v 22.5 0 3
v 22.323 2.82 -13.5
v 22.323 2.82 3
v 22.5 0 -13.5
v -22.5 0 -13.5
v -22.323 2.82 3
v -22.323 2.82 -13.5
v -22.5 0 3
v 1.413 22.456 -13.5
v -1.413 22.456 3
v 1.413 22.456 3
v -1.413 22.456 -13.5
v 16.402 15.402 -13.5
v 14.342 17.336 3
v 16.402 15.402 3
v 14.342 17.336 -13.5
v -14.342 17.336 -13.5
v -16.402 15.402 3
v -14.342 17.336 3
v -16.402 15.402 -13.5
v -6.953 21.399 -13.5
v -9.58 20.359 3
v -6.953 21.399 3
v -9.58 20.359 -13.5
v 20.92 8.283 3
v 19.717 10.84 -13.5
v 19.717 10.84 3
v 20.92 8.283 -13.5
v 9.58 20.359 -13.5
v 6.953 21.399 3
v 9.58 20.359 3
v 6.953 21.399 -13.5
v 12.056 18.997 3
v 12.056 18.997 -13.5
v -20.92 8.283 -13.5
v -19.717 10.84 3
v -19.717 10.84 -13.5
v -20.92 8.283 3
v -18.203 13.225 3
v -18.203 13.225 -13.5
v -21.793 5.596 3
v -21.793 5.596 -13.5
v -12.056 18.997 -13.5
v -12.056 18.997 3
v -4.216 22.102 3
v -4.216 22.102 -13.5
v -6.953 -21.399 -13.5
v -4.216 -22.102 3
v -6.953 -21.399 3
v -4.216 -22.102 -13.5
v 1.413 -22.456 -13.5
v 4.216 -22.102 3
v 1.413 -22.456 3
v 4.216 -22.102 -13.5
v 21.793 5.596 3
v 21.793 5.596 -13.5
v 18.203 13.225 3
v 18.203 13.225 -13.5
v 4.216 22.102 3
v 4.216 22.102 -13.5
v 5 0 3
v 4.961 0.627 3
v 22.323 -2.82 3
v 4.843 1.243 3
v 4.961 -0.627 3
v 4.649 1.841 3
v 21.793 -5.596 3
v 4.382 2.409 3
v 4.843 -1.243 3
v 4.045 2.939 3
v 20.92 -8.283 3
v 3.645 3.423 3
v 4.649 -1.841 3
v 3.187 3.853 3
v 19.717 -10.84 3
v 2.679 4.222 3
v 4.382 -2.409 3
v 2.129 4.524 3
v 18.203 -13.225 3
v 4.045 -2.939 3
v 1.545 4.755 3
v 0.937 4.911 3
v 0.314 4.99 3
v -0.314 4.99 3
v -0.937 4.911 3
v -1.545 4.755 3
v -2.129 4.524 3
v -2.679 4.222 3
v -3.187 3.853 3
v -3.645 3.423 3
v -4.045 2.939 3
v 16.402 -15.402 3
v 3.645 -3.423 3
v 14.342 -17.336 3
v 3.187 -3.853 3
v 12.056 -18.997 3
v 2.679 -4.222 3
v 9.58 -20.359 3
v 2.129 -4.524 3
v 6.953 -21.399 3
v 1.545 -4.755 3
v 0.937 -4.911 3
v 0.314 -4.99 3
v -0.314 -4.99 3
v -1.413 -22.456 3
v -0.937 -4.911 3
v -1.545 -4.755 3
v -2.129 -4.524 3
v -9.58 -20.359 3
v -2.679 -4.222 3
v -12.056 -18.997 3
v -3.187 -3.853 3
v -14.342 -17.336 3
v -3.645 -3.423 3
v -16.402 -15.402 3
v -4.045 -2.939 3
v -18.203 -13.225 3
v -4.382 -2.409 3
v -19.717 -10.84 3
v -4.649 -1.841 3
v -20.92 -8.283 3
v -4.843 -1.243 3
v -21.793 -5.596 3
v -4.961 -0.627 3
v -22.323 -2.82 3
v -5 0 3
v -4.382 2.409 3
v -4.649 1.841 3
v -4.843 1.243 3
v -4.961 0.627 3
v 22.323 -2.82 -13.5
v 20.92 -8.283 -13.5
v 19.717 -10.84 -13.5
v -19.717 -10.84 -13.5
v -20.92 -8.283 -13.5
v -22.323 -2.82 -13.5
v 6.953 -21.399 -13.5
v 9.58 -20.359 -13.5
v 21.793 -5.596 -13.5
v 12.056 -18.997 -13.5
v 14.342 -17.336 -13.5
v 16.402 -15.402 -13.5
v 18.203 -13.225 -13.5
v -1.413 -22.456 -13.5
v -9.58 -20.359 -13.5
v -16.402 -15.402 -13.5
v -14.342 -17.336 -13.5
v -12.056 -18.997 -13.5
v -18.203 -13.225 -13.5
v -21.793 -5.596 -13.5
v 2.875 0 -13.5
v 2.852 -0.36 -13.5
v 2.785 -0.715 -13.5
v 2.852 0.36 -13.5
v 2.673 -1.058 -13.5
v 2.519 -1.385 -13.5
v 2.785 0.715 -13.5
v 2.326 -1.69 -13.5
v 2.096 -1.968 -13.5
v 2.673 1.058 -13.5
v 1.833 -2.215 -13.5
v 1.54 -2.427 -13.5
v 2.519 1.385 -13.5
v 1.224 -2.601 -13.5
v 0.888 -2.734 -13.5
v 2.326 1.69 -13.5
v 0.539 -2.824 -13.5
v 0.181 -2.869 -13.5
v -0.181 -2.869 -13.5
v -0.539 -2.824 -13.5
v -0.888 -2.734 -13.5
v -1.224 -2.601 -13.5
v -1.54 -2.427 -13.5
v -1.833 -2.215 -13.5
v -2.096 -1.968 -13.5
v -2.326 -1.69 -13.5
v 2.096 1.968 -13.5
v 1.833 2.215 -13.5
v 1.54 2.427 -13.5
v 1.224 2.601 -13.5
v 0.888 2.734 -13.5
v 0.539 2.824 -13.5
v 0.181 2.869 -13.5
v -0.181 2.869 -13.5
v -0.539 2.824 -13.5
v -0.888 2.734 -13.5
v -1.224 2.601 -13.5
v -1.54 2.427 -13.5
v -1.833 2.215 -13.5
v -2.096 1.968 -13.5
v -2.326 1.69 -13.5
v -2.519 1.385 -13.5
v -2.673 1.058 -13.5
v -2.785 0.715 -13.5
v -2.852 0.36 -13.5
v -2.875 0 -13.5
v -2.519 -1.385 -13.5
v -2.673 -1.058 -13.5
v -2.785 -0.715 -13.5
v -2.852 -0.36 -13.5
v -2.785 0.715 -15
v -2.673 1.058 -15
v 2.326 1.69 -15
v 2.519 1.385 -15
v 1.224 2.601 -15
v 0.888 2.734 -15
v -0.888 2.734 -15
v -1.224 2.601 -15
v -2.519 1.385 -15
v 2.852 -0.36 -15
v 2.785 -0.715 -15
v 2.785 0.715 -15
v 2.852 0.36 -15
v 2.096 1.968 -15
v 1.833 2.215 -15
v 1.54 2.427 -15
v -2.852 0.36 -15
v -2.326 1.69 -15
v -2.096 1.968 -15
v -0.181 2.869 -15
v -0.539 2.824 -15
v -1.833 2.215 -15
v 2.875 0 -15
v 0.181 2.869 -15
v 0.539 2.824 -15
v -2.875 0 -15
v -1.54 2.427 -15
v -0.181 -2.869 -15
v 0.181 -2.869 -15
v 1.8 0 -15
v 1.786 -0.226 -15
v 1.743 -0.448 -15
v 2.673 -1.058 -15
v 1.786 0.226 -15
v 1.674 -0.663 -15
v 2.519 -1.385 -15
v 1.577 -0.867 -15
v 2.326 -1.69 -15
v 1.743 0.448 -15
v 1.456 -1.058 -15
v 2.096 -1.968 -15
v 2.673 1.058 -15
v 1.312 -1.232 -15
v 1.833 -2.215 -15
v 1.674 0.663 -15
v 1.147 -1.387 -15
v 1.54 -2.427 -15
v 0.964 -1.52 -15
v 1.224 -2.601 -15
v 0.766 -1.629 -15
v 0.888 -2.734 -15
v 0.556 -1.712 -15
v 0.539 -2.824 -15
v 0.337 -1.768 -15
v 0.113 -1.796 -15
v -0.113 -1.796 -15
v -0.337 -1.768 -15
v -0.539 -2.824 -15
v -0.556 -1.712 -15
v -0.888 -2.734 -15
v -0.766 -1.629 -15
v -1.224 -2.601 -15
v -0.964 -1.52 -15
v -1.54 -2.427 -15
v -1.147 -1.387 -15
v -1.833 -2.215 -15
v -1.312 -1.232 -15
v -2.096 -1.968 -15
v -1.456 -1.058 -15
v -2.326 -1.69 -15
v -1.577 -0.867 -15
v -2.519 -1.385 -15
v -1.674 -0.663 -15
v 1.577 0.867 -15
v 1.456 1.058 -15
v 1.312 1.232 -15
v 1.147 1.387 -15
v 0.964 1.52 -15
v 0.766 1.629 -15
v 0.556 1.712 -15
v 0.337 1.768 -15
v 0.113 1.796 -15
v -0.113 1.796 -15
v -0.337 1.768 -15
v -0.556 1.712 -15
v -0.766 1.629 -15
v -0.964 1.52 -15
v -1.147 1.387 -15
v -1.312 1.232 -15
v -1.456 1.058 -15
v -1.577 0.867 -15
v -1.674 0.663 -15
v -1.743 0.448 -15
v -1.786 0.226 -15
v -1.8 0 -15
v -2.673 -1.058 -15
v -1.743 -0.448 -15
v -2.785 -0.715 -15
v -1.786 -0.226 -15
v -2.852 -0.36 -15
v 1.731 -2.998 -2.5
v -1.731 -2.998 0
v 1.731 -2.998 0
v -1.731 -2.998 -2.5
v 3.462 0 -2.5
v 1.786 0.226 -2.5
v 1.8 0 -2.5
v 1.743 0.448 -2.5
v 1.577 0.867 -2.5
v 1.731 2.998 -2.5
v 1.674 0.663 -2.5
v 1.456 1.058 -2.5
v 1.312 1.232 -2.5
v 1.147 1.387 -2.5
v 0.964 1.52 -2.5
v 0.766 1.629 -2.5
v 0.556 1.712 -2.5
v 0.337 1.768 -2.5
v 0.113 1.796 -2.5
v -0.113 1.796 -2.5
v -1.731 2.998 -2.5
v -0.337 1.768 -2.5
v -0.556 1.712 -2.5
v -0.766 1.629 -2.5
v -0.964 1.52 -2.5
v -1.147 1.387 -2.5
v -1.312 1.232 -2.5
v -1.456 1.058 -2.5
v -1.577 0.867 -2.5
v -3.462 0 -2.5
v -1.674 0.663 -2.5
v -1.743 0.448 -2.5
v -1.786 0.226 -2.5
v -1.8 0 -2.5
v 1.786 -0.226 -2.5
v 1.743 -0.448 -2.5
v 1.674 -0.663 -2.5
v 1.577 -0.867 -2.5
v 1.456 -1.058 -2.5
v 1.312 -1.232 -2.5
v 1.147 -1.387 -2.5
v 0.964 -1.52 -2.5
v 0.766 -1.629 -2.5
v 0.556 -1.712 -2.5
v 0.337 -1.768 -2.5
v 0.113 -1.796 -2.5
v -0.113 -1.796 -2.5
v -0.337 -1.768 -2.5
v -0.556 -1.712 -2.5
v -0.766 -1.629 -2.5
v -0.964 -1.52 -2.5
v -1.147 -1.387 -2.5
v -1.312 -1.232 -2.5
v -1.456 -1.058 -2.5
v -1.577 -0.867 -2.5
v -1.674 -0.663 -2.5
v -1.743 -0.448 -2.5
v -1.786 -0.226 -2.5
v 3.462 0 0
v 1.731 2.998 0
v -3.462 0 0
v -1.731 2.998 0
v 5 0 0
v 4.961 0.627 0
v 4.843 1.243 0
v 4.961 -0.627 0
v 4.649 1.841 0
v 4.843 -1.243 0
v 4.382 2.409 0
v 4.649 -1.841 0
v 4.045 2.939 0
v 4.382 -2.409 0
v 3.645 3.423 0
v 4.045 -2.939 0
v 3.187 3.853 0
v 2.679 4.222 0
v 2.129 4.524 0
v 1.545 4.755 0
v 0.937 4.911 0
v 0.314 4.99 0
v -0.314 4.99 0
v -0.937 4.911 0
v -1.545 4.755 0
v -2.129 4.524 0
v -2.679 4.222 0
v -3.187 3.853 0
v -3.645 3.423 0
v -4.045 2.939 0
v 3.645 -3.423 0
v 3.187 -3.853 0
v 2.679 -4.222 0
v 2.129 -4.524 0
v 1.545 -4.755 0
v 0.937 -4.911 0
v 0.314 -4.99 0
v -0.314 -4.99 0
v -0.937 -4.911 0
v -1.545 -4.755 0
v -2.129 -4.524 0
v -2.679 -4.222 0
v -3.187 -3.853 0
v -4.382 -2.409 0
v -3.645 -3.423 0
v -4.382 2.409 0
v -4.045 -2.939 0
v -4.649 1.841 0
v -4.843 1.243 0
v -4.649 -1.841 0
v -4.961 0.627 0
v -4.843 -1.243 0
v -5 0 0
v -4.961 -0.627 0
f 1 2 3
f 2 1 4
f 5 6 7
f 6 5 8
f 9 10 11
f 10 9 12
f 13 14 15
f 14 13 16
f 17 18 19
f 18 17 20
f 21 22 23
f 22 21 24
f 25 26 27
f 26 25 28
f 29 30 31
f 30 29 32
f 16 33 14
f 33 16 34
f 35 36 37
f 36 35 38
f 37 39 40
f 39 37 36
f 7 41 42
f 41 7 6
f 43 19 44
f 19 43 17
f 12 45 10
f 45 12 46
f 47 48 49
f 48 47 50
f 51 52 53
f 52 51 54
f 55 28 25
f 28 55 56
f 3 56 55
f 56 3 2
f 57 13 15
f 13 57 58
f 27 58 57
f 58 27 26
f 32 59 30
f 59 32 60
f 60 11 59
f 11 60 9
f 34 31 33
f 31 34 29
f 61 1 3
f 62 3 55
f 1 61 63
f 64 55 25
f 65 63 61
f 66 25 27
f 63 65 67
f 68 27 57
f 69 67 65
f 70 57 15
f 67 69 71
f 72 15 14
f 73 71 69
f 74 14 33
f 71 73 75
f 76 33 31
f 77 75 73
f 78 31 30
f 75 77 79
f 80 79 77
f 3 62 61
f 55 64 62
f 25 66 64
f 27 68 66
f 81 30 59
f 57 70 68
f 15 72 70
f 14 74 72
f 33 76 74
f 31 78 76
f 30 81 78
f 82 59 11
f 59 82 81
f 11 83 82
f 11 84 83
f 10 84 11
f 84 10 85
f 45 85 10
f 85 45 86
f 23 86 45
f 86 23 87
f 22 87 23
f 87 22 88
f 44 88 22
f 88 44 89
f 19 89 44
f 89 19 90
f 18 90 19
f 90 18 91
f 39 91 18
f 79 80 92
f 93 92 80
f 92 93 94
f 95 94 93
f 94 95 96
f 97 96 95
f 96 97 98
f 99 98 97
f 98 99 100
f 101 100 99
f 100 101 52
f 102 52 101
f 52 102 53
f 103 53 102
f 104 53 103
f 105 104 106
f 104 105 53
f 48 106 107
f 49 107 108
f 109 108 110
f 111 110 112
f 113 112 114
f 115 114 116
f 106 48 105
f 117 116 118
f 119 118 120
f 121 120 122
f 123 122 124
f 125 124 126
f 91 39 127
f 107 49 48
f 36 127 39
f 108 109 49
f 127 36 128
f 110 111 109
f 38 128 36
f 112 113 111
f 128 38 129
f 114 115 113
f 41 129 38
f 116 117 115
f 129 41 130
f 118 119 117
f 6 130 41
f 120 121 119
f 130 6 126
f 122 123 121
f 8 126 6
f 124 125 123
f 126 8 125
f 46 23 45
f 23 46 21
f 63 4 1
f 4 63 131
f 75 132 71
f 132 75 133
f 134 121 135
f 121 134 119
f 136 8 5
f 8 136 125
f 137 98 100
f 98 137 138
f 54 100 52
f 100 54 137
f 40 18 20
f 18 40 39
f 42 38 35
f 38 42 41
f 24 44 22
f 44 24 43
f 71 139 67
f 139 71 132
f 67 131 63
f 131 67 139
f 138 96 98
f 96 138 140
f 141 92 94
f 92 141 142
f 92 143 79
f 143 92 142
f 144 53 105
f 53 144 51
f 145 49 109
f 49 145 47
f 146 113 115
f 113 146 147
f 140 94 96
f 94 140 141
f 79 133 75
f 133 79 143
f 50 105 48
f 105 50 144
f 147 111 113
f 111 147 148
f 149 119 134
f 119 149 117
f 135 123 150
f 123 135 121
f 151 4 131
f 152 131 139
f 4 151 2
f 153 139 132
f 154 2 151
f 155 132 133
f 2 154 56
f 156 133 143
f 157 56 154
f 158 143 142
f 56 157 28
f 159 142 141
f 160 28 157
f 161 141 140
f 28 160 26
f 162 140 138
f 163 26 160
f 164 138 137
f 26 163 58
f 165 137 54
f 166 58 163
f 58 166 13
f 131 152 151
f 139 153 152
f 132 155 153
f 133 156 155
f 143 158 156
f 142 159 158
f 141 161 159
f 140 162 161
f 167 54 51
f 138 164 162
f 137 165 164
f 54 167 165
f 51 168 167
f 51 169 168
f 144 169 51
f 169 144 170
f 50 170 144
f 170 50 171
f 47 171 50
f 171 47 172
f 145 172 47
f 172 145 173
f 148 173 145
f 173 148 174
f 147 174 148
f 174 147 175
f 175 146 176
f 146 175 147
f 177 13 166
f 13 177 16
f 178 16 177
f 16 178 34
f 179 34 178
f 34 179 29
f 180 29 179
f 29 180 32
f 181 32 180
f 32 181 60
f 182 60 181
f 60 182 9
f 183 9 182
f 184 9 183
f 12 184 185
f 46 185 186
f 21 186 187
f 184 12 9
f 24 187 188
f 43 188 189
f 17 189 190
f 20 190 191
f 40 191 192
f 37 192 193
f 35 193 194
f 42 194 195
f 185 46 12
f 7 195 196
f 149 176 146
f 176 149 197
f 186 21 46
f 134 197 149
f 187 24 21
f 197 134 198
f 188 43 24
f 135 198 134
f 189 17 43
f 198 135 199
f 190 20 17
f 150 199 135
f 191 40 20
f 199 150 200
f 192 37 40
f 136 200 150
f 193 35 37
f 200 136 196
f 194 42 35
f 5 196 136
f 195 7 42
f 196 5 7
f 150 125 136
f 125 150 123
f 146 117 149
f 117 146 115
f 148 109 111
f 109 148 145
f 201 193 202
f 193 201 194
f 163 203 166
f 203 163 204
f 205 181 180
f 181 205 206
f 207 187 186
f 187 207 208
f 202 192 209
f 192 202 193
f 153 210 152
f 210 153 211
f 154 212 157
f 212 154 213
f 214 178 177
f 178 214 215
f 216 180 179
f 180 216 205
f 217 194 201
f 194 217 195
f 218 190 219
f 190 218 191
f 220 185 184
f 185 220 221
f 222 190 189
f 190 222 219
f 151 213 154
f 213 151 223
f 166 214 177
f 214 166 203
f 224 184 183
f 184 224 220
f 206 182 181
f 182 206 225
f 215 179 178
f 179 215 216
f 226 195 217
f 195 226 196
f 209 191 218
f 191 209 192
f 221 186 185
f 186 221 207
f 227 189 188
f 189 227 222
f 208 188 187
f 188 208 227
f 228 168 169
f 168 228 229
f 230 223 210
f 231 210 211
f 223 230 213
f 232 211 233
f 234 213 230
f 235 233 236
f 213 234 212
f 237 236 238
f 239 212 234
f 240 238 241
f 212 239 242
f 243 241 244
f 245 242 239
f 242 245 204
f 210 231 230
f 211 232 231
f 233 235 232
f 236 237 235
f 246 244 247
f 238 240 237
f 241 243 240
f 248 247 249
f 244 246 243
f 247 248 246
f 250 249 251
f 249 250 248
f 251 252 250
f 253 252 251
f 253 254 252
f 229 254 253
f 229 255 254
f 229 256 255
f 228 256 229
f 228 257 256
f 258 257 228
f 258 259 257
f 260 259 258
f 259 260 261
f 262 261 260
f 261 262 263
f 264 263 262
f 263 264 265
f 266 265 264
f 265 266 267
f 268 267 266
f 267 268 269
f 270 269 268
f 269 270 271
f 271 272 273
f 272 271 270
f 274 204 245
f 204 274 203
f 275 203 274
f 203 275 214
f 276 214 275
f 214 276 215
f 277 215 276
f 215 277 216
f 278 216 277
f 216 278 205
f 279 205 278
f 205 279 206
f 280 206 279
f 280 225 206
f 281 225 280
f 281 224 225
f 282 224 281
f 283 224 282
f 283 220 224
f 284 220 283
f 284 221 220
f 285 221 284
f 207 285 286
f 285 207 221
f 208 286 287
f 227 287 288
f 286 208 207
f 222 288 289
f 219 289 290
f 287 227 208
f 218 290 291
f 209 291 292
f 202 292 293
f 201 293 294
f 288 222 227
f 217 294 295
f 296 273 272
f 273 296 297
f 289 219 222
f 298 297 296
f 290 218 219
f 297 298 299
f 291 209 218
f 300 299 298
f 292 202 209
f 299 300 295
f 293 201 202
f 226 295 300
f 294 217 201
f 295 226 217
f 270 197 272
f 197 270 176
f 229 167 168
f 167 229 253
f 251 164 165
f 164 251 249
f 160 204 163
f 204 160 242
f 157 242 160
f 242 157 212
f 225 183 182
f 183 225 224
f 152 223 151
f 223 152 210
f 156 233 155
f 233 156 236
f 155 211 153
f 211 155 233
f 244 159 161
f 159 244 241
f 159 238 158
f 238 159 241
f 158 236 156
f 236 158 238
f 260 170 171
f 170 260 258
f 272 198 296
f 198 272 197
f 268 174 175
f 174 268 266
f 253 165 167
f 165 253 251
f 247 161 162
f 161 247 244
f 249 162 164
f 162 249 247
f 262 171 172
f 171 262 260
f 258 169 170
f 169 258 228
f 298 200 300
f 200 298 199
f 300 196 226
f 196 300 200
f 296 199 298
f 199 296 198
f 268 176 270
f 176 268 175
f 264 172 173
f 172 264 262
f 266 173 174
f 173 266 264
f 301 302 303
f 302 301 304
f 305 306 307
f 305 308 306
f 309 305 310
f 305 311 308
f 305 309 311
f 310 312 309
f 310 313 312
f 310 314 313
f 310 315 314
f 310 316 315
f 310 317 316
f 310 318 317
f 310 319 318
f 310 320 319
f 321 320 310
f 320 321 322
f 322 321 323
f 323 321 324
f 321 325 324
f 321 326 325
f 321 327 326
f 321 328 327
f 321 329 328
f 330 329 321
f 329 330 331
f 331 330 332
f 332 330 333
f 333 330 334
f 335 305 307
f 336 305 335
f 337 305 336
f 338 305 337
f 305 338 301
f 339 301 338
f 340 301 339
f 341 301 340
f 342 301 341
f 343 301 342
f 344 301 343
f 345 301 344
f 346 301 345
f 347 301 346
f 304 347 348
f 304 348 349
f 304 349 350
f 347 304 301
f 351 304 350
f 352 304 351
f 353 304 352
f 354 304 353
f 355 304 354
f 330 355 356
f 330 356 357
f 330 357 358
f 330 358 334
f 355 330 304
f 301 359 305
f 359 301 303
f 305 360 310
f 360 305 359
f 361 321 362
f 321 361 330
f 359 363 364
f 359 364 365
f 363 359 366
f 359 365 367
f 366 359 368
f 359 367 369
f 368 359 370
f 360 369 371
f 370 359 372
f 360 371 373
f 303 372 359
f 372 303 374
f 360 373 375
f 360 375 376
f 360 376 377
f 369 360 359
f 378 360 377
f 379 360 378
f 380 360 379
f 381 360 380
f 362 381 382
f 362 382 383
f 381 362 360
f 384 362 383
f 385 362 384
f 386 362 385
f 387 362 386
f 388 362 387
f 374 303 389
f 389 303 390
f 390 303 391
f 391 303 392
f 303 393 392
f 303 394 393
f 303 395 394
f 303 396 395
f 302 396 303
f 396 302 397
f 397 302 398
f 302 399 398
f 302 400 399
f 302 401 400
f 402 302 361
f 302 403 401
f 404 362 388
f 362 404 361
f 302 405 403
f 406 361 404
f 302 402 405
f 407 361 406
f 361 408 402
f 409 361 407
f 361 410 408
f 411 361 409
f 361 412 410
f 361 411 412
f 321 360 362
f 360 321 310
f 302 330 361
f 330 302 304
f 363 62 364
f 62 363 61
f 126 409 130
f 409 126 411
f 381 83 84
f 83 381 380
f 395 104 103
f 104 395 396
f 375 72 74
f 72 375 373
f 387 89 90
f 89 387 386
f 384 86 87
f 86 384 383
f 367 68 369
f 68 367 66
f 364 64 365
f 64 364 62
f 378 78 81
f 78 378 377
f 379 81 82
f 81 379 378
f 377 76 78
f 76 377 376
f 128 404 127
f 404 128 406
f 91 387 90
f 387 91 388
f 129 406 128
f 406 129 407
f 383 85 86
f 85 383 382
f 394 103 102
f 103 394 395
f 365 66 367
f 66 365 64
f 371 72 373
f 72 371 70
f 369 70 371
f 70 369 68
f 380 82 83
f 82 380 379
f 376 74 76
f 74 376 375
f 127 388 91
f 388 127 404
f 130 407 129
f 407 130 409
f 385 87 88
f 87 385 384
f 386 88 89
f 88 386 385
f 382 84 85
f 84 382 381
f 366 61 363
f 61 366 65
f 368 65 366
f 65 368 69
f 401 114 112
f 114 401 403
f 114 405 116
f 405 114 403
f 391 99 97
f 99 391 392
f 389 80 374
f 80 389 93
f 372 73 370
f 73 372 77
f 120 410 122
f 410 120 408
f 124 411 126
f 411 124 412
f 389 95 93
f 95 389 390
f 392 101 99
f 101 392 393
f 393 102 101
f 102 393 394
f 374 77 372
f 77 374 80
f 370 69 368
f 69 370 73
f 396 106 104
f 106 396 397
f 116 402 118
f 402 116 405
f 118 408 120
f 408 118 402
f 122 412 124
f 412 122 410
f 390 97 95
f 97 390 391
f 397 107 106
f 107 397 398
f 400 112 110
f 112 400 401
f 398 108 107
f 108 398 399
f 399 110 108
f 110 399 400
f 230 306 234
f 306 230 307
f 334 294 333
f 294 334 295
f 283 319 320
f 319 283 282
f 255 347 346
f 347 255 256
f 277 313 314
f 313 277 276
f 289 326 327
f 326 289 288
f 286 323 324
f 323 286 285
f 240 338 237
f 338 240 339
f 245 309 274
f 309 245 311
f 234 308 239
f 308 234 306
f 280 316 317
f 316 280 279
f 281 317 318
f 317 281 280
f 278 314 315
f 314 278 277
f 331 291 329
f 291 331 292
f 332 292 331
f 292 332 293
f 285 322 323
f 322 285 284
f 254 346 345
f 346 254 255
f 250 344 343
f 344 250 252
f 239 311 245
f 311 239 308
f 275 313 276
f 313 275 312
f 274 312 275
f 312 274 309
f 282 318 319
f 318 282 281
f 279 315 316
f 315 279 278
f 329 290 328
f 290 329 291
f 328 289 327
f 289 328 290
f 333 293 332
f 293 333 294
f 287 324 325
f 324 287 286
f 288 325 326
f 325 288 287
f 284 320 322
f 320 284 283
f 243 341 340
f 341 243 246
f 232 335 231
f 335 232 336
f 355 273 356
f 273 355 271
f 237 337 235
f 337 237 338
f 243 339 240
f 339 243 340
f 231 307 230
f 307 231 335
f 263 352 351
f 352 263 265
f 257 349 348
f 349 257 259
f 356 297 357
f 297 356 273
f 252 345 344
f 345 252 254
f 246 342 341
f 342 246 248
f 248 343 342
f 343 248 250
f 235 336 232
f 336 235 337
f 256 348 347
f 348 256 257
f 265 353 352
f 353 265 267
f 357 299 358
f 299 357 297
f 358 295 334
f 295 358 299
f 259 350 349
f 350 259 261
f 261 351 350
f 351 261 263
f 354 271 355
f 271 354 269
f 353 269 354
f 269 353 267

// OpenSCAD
$fn = 50;


difference() {
	union() {
		translate(v = [0, 0, -13.5000000000]) {
			cylinder(h = 16.5000000000, r = 22.5000000000);
		}
		#translate(v = [0, 0, -15.0000000000]) {
			cylinder(h = 15, r = 2.8750000000);
		}
	}
	union() {
		translate(v = [0, 0, 0]) {
			rotate(a = [0, 0, 0]) {
				difference() {
					union() {
						translate(v = [0, 0, -2.5000000000]) {
							linear_extrude(height = 2.5000000000) {
								polygon(points = [[3.4620000000, 0.0000000000], [1.7310000000, 2.9981799479], [-1.7310000000, 2.9981799479], [-3.4620000000, 0.0000000000], [-1.7310000000, -2.9981799479], [1.7310000000, -2.9981799479]]);
							}
						}
					}
					union();
				}
			}
		}
		#cylinder(h = 3, r = 5.0000000000);
		#translate(v = [0, 0, -100.0000000000]) {
			cylinder(h = 200, r = 1.8000000000);
		}
	}
}
